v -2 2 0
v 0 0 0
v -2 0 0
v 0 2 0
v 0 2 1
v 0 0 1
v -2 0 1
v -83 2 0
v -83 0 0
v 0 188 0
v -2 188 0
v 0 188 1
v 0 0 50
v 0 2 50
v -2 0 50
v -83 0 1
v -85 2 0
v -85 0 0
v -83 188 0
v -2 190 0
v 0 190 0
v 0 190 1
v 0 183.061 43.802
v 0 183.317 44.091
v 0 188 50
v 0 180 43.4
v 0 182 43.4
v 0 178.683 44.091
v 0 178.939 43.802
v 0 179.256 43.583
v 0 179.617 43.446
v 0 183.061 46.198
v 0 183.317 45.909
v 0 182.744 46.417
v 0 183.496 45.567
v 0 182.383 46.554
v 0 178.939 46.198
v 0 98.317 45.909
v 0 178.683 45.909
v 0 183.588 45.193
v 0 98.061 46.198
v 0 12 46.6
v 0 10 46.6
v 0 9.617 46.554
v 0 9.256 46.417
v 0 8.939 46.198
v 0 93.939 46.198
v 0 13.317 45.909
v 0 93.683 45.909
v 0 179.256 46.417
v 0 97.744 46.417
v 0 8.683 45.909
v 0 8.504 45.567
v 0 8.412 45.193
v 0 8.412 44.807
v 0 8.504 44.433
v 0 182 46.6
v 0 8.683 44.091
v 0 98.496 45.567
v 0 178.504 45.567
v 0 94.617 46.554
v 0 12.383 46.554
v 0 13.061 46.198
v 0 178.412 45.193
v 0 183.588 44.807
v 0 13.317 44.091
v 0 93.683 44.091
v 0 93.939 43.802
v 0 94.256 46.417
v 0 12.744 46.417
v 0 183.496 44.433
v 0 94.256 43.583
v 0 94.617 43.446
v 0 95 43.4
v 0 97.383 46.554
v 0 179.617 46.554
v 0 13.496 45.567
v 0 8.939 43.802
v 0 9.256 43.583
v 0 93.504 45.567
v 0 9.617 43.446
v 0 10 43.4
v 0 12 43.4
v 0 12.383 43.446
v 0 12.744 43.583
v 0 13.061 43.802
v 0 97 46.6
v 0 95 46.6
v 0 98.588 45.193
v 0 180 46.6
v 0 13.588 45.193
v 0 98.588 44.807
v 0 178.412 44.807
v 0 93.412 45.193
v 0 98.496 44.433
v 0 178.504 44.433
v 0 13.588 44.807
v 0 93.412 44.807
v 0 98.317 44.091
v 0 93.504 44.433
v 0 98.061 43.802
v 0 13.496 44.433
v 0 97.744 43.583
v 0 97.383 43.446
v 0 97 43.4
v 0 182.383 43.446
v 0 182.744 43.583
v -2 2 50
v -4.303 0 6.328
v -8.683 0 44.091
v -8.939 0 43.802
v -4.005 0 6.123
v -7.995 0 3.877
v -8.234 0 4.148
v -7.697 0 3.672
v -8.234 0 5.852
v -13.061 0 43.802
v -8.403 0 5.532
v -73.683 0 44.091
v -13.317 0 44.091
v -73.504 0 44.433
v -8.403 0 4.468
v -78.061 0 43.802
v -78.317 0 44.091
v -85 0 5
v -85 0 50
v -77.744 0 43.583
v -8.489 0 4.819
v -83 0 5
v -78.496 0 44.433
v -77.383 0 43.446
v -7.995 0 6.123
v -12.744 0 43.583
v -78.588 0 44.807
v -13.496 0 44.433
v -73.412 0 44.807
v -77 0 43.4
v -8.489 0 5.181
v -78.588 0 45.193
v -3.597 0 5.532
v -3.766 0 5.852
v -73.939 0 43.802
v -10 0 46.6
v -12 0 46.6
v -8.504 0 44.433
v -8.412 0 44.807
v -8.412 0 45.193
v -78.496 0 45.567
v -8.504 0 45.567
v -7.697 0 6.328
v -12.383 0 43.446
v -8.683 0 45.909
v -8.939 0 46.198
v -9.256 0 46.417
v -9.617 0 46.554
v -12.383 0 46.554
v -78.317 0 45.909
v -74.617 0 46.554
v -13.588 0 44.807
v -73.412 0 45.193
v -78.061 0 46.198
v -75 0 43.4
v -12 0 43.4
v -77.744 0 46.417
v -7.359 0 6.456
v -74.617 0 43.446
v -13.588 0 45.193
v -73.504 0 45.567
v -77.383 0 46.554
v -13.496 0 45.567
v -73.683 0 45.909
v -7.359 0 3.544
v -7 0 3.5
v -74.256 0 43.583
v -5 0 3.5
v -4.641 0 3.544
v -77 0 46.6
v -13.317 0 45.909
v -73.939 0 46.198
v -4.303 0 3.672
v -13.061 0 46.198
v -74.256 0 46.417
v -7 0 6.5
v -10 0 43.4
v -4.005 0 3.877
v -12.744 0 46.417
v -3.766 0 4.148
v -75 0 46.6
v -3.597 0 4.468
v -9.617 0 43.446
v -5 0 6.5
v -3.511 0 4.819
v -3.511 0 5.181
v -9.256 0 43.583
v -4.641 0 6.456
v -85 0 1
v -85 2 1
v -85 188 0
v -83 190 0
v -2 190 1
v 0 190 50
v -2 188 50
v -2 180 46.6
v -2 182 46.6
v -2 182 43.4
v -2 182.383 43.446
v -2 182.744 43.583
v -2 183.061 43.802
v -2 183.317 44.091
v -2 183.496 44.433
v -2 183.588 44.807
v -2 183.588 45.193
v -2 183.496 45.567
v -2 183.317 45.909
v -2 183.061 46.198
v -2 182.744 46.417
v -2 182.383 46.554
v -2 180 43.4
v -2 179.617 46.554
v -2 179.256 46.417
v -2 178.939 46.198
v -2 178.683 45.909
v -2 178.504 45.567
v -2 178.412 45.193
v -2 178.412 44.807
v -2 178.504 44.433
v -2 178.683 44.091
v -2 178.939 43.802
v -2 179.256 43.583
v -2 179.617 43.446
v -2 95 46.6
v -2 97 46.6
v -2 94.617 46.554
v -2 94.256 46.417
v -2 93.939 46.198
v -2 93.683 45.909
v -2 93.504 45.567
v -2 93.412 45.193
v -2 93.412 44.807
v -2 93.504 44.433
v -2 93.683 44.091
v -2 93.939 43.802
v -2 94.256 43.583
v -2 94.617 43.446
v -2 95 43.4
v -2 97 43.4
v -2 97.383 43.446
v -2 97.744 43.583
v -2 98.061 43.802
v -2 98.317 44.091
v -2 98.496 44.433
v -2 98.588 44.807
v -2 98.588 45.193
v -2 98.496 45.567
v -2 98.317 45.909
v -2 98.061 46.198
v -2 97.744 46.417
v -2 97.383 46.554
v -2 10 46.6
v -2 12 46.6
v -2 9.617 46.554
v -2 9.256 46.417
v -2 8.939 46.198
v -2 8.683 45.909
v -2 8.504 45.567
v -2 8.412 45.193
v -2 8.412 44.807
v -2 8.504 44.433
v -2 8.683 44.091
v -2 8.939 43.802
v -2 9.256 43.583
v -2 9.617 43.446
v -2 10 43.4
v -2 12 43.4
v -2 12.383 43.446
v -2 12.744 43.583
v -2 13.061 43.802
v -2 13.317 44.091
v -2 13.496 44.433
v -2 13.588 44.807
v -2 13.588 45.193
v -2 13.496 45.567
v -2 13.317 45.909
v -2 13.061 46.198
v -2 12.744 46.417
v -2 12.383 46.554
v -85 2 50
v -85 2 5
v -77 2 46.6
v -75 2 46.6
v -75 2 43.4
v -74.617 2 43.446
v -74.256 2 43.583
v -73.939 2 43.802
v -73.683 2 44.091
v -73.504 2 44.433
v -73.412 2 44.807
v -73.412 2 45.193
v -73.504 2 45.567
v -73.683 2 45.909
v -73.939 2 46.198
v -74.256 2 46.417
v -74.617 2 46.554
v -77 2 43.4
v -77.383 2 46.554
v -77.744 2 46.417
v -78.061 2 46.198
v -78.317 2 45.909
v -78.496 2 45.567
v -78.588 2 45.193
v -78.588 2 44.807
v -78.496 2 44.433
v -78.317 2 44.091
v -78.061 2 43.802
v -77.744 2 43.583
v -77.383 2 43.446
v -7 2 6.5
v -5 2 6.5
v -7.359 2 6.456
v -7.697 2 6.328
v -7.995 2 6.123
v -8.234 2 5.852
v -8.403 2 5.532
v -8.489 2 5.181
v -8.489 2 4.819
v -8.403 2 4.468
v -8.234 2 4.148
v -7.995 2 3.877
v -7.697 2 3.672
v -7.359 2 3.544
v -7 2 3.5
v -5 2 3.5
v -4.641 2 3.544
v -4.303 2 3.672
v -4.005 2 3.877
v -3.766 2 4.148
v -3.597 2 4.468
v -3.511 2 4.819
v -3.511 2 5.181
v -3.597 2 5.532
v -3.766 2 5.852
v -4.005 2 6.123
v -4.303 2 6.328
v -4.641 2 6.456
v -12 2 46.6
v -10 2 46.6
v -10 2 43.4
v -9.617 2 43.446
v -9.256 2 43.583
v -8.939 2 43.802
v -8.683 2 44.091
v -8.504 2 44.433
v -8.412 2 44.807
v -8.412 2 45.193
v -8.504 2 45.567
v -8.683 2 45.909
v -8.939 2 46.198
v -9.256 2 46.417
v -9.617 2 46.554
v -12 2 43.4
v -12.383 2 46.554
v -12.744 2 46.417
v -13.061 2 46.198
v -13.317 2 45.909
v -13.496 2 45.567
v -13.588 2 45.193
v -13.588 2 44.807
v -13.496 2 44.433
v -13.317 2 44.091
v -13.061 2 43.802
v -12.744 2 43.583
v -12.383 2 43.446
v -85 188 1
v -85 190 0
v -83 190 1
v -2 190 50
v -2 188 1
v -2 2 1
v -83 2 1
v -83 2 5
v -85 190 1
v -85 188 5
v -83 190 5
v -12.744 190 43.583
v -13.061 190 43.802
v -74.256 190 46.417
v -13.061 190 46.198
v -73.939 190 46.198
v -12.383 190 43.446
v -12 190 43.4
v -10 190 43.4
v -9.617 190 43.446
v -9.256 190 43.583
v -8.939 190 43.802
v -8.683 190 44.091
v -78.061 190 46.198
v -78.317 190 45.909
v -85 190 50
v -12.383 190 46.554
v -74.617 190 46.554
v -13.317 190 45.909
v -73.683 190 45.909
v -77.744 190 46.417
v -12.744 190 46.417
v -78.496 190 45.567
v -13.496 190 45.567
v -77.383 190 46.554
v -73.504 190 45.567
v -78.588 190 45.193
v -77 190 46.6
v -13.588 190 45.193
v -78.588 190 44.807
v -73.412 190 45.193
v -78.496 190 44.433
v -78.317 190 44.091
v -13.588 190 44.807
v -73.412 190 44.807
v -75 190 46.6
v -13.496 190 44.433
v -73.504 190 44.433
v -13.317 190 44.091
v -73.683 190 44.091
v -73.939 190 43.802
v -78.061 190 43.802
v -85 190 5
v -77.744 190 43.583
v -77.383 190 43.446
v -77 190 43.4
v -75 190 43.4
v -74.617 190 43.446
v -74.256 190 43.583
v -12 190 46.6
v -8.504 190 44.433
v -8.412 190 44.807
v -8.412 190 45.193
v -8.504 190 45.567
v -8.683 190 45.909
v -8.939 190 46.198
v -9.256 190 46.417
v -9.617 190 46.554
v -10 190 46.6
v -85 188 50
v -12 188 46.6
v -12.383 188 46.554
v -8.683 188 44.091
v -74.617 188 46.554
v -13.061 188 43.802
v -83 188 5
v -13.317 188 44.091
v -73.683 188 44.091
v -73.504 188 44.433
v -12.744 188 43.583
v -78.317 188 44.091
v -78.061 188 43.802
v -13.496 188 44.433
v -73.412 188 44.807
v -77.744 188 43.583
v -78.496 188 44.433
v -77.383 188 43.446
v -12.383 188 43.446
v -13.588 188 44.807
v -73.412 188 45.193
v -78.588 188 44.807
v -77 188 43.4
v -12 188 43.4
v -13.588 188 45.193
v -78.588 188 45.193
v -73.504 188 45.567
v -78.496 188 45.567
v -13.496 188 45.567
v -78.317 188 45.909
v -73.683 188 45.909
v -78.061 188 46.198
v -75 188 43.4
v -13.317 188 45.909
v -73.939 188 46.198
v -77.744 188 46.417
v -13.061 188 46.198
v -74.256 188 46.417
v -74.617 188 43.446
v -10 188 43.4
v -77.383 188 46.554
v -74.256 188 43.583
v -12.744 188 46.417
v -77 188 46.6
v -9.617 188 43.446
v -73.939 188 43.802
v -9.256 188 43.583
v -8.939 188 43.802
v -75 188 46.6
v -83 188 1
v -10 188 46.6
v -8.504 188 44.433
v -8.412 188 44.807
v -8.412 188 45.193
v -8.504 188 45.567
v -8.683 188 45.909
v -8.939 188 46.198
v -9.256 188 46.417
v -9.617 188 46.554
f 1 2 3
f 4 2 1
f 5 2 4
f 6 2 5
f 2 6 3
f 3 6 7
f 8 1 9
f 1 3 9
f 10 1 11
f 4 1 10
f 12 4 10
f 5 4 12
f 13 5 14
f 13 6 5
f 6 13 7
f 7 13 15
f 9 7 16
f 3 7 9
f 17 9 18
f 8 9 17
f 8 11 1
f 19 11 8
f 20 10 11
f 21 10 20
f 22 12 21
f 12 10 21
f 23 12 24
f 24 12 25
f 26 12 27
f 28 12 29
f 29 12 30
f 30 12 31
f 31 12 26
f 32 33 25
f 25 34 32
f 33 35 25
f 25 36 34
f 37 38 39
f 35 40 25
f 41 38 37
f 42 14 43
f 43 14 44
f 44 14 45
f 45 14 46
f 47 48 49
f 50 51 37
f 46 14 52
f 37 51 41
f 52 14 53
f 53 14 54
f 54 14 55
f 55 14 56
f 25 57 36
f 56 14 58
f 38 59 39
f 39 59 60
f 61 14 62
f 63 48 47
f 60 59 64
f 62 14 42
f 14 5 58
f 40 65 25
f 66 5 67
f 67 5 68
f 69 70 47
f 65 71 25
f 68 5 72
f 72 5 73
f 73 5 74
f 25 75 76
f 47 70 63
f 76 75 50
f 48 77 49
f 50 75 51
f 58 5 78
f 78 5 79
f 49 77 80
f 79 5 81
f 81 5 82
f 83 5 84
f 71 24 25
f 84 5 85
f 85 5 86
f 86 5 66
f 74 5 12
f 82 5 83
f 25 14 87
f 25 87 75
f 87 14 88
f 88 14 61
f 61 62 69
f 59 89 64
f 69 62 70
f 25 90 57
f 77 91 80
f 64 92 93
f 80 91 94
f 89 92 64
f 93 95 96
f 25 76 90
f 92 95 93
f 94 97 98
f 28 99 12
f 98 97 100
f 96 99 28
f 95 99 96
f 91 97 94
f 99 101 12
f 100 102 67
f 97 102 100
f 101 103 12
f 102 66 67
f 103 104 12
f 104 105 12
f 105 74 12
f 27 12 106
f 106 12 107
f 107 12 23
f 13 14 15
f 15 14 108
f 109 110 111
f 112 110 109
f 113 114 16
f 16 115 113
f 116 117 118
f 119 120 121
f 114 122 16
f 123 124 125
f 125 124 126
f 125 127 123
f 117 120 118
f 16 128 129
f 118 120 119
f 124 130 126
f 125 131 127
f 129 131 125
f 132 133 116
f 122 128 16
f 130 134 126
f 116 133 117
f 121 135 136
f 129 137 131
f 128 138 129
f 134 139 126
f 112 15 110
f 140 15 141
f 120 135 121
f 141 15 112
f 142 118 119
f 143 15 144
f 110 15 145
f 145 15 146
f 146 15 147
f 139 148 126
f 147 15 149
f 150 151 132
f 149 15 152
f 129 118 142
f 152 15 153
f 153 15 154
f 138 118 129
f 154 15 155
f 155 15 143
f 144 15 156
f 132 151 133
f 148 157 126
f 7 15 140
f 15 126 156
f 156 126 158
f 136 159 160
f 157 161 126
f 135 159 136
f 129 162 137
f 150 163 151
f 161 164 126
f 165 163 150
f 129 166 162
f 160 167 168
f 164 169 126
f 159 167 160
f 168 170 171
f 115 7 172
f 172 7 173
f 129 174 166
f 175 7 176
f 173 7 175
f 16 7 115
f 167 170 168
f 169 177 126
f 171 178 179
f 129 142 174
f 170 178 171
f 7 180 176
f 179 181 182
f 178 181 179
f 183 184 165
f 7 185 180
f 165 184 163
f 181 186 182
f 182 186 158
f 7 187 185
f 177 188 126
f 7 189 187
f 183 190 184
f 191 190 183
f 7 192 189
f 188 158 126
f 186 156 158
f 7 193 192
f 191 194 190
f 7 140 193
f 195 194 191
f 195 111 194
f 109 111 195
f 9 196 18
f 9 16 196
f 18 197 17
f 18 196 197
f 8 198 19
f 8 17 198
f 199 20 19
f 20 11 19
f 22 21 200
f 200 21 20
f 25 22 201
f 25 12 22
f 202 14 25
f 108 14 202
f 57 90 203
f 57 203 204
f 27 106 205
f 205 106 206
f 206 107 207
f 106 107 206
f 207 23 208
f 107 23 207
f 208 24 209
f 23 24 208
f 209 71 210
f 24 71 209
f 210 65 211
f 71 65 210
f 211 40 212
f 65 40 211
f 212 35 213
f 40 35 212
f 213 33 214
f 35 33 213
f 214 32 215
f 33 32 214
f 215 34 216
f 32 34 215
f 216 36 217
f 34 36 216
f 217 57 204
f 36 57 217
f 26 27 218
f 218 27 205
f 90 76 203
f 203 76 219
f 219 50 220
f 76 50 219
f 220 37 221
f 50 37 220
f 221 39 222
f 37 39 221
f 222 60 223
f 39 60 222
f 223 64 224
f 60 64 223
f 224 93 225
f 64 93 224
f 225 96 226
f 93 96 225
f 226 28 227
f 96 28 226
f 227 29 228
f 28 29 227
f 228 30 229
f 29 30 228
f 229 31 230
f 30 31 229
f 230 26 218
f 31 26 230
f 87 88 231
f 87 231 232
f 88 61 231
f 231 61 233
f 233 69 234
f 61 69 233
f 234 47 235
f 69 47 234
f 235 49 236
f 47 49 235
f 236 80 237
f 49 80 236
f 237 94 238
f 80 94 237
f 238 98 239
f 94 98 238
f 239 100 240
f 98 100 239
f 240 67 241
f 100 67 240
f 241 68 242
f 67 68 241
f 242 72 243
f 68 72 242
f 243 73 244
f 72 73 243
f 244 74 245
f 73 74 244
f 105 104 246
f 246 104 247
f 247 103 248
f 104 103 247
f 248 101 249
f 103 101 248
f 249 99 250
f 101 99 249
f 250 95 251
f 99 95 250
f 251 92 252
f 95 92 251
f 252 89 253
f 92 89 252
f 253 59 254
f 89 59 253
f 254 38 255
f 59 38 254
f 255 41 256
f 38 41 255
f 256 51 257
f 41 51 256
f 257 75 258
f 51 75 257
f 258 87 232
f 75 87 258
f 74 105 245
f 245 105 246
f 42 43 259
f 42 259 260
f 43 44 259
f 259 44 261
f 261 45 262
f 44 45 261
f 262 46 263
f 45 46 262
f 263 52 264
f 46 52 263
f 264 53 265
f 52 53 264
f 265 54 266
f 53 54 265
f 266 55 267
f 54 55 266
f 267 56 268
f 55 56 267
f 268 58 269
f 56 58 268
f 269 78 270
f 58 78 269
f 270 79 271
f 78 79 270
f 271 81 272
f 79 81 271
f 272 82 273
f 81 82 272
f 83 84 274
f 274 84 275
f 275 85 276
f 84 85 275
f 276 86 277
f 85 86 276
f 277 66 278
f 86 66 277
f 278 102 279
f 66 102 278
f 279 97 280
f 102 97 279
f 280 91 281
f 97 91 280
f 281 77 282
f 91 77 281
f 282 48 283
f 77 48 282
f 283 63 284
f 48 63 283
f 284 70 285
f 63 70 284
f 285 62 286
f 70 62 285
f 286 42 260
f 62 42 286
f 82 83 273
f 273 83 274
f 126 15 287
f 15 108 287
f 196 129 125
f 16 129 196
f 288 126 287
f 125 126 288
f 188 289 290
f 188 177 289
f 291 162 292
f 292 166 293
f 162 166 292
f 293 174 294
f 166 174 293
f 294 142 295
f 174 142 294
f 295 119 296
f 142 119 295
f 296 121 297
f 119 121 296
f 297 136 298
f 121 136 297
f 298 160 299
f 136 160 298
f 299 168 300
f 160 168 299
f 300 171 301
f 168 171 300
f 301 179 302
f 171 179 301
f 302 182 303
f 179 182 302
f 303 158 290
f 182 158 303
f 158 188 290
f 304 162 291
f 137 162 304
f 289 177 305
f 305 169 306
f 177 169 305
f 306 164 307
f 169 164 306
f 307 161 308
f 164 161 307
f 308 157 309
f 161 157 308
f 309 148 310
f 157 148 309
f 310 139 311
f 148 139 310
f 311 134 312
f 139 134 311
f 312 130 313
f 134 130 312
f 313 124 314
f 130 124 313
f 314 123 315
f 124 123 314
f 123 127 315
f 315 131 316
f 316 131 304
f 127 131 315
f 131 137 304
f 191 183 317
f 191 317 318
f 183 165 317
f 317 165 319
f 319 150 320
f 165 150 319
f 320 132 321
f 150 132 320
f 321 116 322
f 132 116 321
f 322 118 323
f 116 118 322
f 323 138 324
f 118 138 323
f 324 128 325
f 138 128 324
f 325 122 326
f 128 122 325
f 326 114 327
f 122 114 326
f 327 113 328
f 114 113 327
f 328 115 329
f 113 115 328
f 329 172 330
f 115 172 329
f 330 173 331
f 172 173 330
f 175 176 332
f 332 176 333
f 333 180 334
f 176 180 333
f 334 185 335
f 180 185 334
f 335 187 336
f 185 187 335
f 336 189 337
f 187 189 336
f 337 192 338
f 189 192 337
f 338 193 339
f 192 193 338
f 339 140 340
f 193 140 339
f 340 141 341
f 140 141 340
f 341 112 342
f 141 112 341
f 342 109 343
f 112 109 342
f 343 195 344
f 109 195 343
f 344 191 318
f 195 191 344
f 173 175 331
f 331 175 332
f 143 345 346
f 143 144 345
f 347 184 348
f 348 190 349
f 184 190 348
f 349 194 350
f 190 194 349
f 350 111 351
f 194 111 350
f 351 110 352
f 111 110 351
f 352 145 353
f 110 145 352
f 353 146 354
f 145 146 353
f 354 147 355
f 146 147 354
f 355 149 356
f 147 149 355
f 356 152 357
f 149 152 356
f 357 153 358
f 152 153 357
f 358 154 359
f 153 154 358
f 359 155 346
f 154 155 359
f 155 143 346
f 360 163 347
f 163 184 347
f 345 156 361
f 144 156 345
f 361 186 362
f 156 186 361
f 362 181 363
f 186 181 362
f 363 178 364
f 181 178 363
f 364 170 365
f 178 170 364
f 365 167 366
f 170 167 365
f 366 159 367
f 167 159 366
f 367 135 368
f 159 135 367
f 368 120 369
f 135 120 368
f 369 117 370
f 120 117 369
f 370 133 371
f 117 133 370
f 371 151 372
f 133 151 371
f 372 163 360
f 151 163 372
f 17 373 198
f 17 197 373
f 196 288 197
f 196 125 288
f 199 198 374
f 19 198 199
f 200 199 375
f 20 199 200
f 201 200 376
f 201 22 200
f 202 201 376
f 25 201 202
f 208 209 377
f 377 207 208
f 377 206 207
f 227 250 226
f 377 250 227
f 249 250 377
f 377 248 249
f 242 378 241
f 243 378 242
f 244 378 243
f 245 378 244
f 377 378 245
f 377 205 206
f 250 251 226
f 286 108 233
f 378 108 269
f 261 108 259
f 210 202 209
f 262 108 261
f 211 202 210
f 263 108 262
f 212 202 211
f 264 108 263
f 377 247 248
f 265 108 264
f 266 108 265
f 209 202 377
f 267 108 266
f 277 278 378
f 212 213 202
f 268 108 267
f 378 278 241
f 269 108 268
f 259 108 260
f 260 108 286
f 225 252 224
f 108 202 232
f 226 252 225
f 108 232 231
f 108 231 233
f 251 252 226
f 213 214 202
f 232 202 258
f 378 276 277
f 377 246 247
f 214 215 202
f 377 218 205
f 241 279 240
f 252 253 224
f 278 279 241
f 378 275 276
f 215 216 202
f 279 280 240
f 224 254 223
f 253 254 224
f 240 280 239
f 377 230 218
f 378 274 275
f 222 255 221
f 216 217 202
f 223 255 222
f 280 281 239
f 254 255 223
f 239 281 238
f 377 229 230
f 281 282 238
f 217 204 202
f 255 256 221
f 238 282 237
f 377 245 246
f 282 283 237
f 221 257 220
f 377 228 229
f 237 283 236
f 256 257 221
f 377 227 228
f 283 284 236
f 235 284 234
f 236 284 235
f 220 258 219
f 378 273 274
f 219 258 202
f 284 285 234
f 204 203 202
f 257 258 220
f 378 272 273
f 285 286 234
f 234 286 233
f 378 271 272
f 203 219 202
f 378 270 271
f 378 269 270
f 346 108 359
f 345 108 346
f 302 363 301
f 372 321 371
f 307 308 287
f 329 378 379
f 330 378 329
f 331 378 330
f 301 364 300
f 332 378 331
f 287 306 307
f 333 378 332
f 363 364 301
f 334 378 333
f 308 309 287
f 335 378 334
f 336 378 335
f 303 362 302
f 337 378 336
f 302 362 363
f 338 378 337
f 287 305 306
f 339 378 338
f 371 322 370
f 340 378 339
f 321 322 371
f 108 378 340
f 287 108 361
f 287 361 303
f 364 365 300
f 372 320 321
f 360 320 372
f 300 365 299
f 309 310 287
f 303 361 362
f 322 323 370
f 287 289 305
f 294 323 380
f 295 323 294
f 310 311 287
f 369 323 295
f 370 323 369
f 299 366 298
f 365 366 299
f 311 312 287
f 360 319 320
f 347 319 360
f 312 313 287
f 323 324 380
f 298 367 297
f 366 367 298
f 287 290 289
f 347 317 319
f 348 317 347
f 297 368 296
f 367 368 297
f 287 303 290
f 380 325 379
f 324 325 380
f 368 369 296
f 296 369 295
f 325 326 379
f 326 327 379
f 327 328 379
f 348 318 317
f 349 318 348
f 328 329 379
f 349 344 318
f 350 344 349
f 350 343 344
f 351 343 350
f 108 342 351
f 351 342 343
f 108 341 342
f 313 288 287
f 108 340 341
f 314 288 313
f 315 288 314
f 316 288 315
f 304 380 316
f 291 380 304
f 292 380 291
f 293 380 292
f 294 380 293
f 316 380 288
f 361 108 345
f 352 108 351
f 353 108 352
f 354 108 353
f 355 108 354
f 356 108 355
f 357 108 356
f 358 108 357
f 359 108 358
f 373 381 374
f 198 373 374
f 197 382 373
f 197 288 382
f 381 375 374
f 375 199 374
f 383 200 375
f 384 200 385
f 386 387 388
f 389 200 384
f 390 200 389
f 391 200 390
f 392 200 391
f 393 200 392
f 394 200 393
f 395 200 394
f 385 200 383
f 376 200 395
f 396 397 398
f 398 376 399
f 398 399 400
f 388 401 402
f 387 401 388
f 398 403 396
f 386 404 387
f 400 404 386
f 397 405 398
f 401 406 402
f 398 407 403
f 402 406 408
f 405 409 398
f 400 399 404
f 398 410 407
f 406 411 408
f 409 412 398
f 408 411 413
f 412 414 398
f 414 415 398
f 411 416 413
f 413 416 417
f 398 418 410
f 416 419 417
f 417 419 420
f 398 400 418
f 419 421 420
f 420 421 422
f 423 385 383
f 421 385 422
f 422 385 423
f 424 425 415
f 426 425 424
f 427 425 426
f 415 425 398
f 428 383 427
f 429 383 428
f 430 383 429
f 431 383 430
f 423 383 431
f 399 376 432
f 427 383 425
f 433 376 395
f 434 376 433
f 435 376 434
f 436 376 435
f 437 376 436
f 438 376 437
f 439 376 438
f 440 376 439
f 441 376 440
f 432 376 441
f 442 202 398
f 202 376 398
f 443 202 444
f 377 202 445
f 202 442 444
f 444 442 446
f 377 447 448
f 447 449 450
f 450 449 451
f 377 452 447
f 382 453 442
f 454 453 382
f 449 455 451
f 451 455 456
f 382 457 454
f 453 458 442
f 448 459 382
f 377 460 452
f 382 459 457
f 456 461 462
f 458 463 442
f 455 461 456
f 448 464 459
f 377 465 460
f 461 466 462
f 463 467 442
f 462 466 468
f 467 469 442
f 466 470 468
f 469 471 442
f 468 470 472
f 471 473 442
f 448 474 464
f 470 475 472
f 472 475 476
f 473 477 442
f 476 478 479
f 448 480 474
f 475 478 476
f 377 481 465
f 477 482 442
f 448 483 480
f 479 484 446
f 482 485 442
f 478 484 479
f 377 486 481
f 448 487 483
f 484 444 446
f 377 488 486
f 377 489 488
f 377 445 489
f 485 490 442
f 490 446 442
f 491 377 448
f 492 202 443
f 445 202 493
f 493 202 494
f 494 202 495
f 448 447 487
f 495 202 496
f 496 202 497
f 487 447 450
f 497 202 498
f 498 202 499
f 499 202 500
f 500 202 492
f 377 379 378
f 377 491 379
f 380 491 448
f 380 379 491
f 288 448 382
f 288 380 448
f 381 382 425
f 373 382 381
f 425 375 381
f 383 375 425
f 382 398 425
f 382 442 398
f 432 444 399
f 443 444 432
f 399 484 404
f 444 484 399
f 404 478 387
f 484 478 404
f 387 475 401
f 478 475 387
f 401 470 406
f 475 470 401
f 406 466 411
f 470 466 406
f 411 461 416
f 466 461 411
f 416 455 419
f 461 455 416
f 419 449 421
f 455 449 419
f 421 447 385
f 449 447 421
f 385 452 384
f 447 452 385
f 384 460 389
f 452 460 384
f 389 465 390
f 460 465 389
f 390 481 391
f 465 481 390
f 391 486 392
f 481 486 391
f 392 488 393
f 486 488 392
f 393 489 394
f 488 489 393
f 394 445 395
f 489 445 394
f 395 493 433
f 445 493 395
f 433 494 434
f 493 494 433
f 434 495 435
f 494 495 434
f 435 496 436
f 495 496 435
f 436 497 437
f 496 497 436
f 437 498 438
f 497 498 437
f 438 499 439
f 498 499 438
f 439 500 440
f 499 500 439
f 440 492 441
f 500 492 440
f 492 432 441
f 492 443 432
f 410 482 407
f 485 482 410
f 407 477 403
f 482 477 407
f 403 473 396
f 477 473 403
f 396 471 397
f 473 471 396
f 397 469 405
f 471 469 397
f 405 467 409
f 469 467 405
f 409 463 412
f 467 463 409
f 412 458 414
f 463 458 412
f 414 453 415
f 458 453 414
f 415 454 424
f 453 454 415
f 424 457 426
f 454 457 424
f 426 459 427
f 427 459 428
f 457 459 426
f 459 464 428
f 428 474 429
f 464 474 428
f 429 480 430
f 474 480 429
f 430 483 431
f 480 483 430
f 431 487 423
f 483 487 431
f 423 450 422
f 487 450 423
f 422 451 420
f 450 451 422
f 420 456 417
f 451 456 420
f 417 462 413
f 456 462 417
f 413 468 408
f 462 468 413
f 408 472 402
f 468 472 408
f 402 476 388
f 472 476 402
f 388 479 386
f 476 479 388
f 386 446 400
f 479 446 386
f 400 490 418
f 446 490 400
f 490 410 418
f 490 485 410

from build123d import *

# Parameters (mm, degrees)
SKETCH_W            = 85
SKETCH_H            = 190
PAD_DEPTH           = 1
SKETCH001_W         = 2
SKETCH001_H         = 50
PAD001_DEPTH        = 190
SKETCH002_W         = 2
SKETCH002_H         = 50
PAD002_DEPTH        = 85
SKETCH003_W         = 2
SKETCH003_H         = 50
PAD003_DEPTH        = 85
SKETCH004_W         = 2
SKETCH004_H         = 5
PAD004_DEPTH        = 190
POCKET_DEPTH        = 2
POCKET001_DEPTH     = 190
POCKET002_DEPTH     = 2
LINEARPATTERN_COUNT = 3
LINEARPATTERN_PITCH = 85


with BuildPart() as part:
    # Sketch → Pad (new body)
    with BuildSketch(Plane.XY):
        with Locations((-42.5, 95)):
            Rectangle(SKETCH_W, SKETCH_H)
    extrude(amount=PAD_DEPTH)

    # Sketch001 → Pad001 (join)
    with BuildSketch(Plane.XZ):
        with Locations((-1, 25)):
            Rectangle(SKETCH001_W, SKETCH001_H)
    extrude(amount=-PAD001_DEPTH)

    # Sketch002 → Pad002 (join)
    with BuildSketch(Plane.YZ):
        with Locations((1, 25)):
            Rectangle(SKETCH002_W, SKETCH002_H)
    extrude(amount=-PAD002_DEPTH)

    # Sketch003 → Pad003 (join)
    with BuildSketch(Plane.YZ):
        with Locations((189, 25)):
            Rectangle(SKETCH003_W, SKETCH003_H)
    extrude(amount=-PAD003_DEPTH)

    # Sketch004 → Pad004 (join)
    with BuildSketch(Plane.XZ):
        with Locations((-84, 2.5)):
            Rectangle(SKETCH004_W, SKETCH004_H)
    extrude(amount=-PAD004_DEPTH)

    # Sketch005 → Pocket (cut)
    with BuildSketch(Plane.XZ):
        with BuildLine():
            ThreePointArc((-7, 6.5), (-8.5, 5), (-7, 3.5))
            Line((-7, 3.5), (-5, 3.5))
            ThreePointArc((-5, 3.5), (-3.5, 5), (-5, 6.5))
            Line((-7, 6.5), (-5, 6.5))
        make_face()
    extrude(amount=-POCKET_DEPTH, mode=Mode.SUBTRACT)

    # Sketch006 → Pocket001 (cut)
    with BuildSketch(Plane.XZ):
        with BuildLine():
            ThreePointArc((-12, 46.6), (-13.6, 45), (-12, 43.4))
            Line((-12, 43.4), (-10, 43.4))
            ThreePointArc((-10, 43.4), (-8.4, 45), (-10, 46.6))
            Line((-12, 46.6), (-10, 46.6))
        make_face()
        with BuildLine():
            ThreePointArc((-77, 46.6), (-78.6, 45), (-77, 43.4))
            Line((-77, 43.4), (-75, 43.4))
            ThreePointArc((-75, 43.4), (-73.4, 45), (-75, 46.6))
            Line((-77, 46.6), (-75, 46.6))
        make_face()
    extrude(amount=-POCKET001_DEPTH, mode=Mode.SUBTRACT)

    # Sketch007 → Pocket002 (cut)
    with BuildSketch(Plane.YZ):
        with BuildLine():
            ThreePointArc((10, 46.6), (8.4, 45), (10, 43.4))
            Line((10, 43.4), (12, 43.4))
            ThreePointArc((12, 43.4), (13.6, 45), (12, 46.6))
            Line((10, 46.6), (12, 46.6))
        make_face()
    pocket002 = extrude(amount=-POCKET002_DEPTH, mode=Mode.SUBTRACT)

    # LinearPattern: Pocket002 ×3
    with Locations(*[(0, i * LINEARPATTERN_PITCH, 0) for i in range(1, LINEARPATTERN_COUNT)]):
        add(pocket002, mode=Mode.SUBTRACT)


solid = part.part
